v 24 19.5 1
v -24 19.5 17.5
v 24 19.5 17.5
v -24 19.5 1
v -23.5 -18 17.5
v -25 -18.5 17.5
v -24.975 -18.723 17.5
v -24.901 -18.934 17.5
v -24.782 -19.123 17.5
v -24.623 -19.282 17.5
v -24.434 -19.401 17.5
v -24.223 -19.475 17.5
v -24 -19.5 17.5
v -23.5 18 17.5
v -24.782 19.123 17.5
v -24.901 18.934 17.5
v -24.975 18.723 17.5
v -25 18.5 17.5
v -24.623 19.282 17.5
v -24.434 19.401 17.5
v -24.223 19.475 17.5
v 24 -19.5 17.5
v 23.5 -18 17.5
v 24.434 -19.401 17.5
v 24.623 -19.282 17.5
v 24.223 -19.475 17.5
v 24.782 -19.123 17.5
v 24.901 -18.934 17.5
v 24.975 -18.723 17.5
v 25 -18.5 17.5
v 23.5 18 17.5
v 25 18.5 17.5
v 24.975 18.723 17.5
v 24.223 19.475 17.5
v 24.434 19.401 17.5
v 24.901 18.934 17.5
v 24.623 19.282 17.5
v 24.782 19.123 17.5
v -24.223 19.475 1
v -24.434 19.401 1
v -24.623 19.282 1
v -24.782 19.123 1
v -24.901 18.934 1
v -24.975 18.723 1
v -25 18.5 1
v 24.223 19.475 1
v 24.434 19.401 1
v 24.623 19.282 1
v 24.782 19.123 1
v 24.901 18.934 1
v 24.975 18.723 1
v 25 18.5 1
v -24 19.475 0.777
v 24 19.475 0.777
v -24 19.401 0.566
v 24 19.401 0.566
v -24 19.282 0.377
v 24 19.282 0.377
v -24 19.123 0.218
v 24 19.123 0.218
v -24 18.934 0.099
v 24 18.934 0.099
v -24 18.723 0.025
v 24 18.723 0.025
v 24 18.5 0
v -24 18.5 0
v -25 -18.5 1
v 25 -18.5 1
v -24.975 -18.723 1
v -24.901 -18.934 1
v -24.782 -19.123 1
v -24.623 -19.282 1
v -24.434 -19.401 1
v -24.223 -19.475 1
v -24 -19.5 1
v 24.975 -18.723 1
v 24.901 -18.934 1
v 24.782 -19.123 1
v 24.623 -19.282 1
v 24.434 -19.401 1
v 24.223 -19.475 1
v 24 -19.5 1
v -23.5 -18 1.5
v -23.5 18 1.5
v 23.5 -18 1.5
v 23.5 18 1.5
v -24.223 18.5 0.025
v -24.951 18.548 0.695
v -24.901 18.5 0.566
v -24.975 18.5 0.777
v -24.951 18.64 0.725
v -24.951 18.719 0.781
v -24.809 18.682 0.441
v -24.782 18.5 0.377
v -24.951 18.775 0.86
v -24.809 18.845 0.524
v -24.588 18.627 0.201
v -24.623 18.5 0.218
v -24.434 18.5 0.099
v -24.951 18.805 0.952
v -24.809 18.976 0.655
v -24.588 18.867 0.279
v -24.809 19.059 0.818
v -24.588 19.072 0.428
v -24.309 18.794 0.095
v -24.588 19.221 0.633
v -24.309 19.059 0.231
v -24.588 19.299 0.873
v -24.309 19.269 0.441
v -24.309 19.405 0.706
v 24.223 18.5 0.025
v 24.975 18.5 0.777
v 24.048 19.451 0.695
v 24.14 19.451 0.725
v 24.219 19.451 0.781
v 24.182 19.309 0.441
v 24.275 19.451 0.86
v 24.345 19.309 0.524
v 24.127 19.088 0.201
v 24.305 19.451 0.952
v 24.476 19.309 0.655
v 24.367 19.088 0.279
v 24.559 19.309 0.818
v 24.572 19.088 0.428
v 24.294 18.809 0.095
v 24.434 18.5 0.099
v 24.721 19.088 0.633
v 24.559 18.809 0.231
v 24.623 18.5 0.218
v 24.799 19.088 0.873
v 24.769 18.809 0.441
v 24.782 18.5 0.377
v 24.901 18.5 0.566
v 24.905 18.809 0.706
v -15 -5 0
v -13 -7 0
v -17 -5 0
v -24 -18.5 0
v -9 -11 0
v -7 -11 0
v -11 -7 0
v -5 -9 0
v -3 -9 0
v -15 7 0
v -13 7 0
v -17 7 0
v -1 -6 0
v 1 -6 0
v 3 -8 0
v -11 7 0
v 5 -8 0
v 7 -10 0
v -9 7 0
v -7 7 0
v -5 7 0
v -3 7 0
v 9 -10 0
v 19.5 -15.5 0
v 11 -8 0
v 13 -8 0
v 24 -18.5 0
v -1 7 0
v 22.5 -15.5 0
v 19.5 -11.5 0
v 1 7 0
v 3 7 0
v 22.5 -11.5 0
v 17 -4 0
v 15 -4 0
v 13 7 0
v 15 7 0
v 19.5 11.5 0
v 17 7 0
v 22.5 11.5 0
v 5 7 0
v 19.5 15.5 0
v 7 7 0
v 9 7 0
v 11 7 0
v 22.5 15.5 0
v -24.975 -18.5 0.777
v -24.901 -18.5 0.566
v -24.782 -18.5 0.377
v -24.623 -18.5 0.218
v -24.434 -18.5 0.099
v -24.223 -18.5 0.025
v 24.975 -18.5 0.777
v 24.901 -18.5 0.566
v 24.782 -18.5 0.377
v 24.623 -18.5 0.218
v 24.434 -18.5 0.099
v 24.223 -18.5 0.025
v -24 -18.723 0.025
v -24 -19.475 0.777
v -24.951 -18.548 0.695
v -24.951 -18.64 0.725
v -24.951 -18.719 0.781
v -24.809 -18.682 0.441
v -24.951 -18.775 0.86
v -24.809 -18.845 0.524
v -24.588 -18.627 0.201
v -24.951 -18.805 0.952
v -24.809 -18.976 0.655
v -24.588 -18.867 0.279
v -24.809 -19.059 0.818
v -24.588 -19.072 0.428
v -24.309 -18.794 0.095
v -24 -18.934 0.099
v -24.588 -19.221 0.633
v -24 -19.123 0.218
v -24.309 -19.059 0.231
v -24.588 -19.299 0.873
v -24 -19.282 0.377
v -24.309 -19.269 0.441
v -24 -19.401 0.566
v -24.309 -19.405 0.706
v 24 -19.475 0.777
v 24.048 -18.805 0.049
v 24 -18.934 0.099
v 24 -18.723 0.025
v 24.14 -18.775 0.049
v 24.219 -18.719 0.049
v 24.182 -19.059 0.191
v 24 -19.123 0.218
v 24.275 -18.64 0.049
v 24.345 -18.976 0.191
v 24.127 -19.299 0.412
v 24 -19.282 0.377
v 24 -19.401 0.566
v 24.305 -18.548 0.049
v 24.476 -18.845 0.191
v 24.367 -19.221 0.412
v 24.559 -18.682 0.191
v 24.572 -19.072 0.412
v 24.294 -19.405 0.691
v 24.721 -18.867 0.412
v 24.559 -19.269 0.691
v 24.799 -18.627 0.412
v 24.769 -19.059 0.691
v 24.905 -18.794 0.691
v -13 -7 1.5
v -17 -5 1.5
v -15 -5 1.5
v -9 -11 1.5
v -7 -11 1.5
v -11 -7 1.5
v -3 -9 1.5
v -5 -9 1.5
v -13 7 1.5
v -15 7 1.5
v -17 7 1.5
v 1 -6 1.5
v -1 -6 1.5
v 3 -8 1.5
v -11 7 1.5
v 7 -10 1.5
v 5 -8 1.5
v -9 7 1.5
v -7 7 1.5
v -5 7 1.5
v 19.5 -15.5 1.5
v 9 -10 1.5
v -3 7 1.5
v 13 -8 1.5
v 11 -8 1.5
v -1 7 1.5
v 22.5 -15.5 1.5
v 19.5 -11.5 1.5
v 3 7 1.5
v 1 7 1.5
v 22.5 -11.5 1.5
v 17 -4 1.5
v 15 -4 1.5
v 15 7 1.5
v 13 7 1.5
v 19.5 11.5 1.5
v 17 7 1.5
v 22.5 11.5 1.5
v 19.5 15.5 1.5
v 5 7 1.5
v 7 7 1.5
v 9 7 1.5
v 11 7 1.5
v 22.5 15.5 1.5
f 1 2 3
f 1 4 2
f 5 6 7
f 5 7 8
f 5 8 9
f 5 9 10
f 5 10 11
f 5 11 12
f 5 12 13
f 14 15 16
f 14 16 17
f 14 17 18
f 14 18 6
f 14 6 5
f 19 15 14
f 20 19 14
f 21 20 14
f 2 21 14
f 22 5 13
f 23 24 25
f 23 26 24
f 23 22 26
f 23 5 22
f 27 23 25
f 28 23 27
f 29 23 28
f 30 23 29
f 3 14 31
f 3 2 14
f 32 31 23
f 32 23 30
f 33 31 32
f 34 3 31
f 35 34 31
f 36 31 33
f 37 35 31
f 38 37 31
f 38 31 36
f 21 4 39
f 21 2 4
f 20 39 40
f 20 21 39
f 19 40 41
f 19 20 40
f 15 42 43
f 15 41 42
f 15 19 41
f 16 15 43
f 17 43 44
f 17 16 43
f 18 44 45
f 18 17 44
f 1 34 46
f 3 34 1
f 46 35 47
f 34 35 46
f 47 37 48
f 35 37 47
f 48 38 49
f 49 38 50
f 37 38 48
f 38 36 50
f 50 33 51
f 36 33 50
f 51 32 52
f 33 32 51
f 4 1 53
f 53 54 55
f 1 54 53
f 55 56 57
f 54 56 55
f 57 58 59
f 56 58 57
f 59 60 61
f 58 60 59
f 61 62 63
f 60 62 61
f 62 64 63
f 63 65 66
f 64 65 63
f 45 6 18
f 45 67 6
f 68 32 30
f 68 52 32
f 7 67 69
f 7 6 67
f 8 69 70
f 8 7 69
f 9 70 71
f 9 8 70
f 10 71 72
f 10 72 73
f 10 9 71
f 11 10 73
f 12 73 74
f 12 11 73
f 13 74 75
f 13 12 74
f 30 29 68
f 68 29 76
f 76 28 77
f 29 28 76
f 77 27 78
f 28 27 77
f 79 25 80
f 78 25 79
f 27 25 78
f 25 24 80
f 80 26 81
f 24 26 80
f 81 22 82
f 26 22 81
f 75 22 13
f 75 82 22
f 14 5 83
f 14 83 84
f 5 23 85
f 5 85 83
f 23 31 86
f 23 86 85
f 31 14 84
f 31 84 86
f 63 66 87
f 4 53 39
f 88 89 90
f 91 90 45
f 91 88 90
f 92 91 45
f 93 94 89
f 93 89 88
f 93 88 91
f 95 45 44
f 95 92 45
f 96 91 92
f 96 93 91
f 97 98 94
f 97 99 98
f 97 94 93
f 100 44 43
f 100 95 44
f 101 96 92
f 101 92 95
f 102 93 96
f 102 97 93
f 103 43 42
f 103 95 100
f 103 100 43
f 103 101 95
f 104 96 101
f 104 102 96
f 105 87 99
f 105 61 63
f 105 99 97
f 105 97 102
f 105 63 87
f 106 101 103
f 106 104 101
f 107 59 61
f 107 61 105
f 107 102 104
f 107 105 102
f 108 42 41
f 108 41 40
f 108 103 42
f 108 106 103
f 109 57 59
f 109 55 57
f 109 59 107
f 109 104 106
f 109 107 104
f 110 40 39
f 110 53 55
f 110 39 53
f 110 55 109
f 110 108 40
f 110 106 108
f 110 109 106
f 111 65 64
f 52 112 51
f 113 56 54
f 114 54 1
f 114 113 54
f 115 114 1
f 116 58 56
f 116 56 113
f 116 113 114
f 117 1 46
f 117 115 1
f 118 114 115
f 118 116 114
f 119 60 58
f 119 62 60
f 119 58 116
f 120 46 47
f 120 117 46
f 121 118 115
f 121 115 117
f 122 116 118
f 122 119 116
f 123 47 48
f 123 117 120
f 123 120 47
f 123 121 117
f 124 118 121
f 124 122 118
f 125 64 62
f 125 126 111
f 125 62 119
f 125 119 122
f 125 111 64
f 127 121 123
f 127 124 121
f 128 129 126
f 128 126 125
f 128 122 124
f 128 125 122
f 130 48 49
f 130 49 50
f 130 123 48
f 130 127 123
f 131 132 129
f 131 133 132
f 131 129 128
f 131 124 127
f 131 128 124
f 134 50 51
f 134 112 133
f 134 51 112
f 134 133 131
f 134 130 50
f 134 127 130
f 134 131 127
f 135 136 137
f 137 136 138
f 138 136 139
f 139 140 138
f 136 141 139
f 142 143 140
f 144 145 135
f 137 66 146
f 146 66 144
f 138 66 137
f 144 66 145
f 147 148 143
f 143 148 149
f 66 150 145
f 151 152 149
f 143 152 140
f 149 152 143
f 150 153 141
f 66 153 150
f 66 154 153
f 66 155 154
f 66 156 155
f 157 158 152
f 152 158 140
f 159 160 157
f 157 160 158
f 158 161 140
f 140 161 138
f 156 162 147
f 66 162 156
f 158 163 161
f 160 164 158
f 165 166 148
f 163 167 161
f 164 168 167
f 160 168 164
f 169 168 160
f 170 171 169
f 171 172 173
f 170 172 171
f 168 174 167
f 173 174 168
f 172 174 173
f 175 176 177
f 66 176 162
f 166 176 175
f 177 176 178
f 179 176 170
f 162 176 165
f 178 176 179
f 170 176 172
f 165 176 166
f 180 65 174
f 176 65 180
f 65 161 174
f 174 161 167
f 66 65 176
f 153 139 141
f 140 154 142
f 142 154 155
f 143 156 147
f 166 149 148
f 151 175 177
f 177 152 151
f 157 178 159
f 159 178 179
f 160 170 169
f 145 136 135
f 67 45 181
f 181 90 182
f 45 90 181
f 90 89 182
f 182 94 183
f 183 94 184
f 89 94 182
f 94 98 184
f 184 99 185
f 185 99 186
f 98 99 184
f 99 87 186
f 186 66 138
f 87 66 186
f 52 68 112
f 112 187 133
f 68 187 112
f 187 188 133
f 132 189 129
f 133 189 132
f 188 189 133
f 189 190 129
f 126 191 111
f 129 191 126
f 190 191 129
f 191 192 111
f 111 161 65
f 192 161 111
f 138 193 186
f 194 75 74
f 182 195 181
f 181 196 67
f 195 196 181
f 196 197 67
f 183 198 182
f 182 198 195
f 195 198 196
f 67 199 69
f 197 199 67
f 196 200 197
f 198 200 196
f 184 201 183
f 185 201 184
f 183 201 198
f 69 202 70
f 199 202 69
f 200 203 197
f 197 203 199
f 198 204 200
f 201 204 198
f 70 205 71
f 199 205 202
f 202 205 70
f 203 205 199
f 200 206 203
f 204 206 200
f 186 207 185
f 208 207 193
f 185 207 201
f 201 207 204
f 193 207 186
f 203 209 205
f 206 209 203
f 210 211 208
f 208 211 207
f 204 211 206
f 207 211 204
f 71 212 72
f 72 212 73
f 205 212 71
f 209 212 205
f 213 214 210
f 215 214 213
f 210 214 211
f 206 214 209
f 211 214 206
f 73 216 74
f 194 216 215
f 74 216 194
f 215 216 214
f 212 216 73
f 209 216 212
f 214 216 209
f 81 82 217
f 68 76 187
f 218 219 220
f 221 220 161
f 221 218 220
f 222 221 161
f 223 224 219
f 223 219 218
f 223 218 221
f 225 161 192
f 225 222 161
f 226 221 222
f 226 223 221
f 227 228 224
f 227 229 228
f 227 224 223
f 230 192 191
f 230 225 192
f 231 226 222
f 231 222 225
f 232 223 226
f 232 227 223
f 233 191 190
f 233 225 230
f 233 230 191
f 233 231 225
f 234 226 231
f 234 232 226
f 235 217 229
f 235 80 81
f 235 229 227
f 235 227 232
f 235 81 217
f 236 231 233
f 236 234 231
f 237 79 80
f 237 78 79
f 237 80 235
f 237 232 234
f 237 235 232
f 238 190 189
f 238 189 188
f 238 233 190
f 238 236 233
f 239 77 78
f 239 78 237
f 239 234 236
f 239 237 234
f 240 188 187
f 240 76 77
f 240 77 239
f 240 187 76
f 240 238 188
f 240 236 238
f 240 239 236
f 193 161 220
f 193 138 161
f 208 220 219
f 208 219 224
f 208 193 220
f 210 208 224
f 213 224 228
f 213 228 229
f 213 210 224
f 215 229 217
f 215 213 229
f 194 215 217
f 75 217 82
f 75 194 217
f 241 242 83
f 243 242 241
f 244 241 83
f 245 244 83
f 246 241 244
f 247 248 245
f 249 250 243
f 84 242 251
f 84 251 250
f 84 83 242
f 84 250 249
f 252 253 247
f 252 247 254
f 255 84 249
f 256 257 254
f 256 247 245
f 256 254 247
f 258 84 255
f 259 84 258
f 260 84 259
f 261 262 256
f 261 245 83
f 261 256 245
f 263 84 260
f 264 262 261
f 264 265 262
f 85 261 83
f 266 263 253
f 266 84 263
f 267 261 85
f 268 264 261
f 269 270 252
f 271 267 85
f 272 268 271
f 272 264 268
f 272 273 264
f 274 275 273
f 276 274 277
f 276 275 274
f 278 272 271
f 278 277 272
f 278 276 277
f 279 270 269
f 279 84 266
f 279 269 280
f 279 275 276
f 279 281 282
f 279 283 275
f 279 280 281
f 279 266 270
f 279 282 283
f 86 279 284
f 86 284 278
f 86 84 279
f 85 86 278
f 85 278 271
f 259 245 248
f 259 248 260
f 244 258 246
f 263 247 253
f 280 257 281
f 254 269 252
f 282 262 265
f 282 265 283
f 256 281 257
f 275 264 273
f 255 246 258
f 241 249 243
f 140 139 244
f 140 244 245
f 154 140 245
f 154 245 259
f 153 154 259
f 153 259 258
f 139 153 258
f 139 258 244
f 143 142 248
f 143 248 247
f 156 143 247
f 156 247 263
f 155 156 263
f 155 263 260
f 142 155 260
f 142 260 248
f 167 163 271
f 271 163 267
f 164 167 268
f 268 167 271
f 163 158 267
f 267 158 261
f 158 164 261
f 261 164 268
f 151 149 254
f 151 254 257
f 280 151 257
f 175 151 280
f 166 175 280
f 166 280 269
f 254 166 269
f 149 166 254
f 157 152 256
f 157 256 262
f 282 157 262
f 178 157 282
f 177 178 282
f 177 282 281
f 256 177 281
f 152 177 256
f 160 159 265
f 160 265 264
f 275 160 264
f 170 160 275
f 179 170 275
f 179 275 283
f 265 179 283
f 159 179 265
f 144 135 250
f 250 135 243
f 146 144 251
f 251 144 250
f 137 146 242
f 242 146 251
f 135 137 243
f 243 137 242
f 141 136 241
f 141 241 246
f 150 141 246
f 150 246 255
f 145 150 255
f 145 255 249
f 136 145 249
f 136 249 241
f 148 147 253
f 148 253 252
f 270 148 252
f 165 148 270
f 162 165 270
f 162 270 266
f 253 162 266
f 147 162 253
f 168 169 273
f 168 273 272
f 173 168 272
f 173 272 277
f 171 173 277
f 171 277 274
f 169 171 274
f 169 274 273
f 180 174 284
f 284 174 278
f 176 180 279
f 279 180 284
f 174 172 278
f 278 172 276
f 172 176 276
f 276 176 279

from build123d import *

# Parameters (mm, degrees)
SKETCH_W        = 50
SKETCH_H        = 39
PAD_DEPTH       = 17.5
SKETCH001_W     = 47
SKETCH001_H     = 36
POCKET_DEPTH    = 16
SKETCH002_W     = 3
SKETCH002_H     = 4
POCKET001_DEPTH = 1.6
SKETCH006_W     = 2
SKETCH006_H     = 12
SKETCH006_H_2   = 14
SKETCH006_H_3   = 18
SKETCH006_H_4   = 16
SKETCH006_H_5   = 13
SKETCH006_H_6   = 15
SKETCH006_H_7   = 17
SKETCH006_H_8   = 11
POCKET002_DEPTH = 1.7
FILLET_R        = 1


with BuildPart() as part:
    # Sketch → Pad (new body)
    with BuildSketch(Plane.XY):
        Rectangle(SKETCH_W, SKETCH_H)
    extrude(amount=PAD_DEPTH)

    # Sketch001 (on Face6 of Pad) → Pocket (cut)
    with BuildSketch(Plane.XY.offset(17.5)):
        Rectangle(SKETCH001_W, SKETCH001_H)
    extrude(amount=-POCKET_DEPTH, mode=Mode.SUBTRACT)

    # Sketch002 (on Face4 of Pocket) → Pocket001 (cut)
    with BuildSketch(Plane(origin=(0, 0, 0), x_dir=(1, 0, 0), z_dir=(0, 0, -1))):
        with Locations((21, 13.5)):
            Rectangle(SKETCH002_W, SKETCH002_H)
        with Locations((21, -13.5)):
            Rectangle(SKETCH002_W, SKETCH002_H)
    extrude(amount=-POCKET001_DEPTH, mode=Mode.SUBTRACT)

    # Sketch006 (on Face4 of Pocket001) → Pocket002 (cut)
    with BuildSketch(Plane(origin=(0, 0, 0), x_dir=(1, 0, 0), z_dir=(0, 0, -1))):
        with Locations((-16, -1)):
            Rectangle(SKETCH006_W, SKETCH006_H)
        with Locations((-12, 0)):
            Rectangle(SKETCH006_W, SKETCH006_H_2)
        with Locations((-8, 2)):
            Rectangle(SKETCH006_W, SKETCH006_H_3)
        with Locations((-4, 1)):
            Rectangle(SKETCH006_W, SKETCH006_H_4)
        with Locations((0, -0.5)):
            Rectangle(SKETCH006_W, SKETCH006_H_5)
        with Locations((4, 0.5)):
            Rectangle(SKETCH006_W, SKETCH006_H_6)
        with Locations((8, 1.5)):
            Rectangle(SKETCH006_W, SKETCH006_H_7)
        with Locations((12, 0.5)):
            Rectangle(SKETCH006_W, SKETCH006_H_6)
        with Locations((16, -1.5)):
            Rectangle(SKETCH006_W, SKETCH006_H_8)
    extrude(amount=-POCKET002_DEPTH, mode=Mode.SUBTRACT)

    # Fillet
    fillet_edges = [part.edges().sort_by_distance(p)[0] for p in [
        (25, -19.5, 8.75),
        (0, -19.5, 0),
        (25, 0, 0),
        (0, 19.5, 0),
        (25, 19.5, 8.75),
        (-25, 0, 0),
        (-25, 19.5, 8.75),
        (-25, -19.5, 8.75),
    ]]
    fillet(fillet_edges, radius=FILLET_R)


solid = part.part
